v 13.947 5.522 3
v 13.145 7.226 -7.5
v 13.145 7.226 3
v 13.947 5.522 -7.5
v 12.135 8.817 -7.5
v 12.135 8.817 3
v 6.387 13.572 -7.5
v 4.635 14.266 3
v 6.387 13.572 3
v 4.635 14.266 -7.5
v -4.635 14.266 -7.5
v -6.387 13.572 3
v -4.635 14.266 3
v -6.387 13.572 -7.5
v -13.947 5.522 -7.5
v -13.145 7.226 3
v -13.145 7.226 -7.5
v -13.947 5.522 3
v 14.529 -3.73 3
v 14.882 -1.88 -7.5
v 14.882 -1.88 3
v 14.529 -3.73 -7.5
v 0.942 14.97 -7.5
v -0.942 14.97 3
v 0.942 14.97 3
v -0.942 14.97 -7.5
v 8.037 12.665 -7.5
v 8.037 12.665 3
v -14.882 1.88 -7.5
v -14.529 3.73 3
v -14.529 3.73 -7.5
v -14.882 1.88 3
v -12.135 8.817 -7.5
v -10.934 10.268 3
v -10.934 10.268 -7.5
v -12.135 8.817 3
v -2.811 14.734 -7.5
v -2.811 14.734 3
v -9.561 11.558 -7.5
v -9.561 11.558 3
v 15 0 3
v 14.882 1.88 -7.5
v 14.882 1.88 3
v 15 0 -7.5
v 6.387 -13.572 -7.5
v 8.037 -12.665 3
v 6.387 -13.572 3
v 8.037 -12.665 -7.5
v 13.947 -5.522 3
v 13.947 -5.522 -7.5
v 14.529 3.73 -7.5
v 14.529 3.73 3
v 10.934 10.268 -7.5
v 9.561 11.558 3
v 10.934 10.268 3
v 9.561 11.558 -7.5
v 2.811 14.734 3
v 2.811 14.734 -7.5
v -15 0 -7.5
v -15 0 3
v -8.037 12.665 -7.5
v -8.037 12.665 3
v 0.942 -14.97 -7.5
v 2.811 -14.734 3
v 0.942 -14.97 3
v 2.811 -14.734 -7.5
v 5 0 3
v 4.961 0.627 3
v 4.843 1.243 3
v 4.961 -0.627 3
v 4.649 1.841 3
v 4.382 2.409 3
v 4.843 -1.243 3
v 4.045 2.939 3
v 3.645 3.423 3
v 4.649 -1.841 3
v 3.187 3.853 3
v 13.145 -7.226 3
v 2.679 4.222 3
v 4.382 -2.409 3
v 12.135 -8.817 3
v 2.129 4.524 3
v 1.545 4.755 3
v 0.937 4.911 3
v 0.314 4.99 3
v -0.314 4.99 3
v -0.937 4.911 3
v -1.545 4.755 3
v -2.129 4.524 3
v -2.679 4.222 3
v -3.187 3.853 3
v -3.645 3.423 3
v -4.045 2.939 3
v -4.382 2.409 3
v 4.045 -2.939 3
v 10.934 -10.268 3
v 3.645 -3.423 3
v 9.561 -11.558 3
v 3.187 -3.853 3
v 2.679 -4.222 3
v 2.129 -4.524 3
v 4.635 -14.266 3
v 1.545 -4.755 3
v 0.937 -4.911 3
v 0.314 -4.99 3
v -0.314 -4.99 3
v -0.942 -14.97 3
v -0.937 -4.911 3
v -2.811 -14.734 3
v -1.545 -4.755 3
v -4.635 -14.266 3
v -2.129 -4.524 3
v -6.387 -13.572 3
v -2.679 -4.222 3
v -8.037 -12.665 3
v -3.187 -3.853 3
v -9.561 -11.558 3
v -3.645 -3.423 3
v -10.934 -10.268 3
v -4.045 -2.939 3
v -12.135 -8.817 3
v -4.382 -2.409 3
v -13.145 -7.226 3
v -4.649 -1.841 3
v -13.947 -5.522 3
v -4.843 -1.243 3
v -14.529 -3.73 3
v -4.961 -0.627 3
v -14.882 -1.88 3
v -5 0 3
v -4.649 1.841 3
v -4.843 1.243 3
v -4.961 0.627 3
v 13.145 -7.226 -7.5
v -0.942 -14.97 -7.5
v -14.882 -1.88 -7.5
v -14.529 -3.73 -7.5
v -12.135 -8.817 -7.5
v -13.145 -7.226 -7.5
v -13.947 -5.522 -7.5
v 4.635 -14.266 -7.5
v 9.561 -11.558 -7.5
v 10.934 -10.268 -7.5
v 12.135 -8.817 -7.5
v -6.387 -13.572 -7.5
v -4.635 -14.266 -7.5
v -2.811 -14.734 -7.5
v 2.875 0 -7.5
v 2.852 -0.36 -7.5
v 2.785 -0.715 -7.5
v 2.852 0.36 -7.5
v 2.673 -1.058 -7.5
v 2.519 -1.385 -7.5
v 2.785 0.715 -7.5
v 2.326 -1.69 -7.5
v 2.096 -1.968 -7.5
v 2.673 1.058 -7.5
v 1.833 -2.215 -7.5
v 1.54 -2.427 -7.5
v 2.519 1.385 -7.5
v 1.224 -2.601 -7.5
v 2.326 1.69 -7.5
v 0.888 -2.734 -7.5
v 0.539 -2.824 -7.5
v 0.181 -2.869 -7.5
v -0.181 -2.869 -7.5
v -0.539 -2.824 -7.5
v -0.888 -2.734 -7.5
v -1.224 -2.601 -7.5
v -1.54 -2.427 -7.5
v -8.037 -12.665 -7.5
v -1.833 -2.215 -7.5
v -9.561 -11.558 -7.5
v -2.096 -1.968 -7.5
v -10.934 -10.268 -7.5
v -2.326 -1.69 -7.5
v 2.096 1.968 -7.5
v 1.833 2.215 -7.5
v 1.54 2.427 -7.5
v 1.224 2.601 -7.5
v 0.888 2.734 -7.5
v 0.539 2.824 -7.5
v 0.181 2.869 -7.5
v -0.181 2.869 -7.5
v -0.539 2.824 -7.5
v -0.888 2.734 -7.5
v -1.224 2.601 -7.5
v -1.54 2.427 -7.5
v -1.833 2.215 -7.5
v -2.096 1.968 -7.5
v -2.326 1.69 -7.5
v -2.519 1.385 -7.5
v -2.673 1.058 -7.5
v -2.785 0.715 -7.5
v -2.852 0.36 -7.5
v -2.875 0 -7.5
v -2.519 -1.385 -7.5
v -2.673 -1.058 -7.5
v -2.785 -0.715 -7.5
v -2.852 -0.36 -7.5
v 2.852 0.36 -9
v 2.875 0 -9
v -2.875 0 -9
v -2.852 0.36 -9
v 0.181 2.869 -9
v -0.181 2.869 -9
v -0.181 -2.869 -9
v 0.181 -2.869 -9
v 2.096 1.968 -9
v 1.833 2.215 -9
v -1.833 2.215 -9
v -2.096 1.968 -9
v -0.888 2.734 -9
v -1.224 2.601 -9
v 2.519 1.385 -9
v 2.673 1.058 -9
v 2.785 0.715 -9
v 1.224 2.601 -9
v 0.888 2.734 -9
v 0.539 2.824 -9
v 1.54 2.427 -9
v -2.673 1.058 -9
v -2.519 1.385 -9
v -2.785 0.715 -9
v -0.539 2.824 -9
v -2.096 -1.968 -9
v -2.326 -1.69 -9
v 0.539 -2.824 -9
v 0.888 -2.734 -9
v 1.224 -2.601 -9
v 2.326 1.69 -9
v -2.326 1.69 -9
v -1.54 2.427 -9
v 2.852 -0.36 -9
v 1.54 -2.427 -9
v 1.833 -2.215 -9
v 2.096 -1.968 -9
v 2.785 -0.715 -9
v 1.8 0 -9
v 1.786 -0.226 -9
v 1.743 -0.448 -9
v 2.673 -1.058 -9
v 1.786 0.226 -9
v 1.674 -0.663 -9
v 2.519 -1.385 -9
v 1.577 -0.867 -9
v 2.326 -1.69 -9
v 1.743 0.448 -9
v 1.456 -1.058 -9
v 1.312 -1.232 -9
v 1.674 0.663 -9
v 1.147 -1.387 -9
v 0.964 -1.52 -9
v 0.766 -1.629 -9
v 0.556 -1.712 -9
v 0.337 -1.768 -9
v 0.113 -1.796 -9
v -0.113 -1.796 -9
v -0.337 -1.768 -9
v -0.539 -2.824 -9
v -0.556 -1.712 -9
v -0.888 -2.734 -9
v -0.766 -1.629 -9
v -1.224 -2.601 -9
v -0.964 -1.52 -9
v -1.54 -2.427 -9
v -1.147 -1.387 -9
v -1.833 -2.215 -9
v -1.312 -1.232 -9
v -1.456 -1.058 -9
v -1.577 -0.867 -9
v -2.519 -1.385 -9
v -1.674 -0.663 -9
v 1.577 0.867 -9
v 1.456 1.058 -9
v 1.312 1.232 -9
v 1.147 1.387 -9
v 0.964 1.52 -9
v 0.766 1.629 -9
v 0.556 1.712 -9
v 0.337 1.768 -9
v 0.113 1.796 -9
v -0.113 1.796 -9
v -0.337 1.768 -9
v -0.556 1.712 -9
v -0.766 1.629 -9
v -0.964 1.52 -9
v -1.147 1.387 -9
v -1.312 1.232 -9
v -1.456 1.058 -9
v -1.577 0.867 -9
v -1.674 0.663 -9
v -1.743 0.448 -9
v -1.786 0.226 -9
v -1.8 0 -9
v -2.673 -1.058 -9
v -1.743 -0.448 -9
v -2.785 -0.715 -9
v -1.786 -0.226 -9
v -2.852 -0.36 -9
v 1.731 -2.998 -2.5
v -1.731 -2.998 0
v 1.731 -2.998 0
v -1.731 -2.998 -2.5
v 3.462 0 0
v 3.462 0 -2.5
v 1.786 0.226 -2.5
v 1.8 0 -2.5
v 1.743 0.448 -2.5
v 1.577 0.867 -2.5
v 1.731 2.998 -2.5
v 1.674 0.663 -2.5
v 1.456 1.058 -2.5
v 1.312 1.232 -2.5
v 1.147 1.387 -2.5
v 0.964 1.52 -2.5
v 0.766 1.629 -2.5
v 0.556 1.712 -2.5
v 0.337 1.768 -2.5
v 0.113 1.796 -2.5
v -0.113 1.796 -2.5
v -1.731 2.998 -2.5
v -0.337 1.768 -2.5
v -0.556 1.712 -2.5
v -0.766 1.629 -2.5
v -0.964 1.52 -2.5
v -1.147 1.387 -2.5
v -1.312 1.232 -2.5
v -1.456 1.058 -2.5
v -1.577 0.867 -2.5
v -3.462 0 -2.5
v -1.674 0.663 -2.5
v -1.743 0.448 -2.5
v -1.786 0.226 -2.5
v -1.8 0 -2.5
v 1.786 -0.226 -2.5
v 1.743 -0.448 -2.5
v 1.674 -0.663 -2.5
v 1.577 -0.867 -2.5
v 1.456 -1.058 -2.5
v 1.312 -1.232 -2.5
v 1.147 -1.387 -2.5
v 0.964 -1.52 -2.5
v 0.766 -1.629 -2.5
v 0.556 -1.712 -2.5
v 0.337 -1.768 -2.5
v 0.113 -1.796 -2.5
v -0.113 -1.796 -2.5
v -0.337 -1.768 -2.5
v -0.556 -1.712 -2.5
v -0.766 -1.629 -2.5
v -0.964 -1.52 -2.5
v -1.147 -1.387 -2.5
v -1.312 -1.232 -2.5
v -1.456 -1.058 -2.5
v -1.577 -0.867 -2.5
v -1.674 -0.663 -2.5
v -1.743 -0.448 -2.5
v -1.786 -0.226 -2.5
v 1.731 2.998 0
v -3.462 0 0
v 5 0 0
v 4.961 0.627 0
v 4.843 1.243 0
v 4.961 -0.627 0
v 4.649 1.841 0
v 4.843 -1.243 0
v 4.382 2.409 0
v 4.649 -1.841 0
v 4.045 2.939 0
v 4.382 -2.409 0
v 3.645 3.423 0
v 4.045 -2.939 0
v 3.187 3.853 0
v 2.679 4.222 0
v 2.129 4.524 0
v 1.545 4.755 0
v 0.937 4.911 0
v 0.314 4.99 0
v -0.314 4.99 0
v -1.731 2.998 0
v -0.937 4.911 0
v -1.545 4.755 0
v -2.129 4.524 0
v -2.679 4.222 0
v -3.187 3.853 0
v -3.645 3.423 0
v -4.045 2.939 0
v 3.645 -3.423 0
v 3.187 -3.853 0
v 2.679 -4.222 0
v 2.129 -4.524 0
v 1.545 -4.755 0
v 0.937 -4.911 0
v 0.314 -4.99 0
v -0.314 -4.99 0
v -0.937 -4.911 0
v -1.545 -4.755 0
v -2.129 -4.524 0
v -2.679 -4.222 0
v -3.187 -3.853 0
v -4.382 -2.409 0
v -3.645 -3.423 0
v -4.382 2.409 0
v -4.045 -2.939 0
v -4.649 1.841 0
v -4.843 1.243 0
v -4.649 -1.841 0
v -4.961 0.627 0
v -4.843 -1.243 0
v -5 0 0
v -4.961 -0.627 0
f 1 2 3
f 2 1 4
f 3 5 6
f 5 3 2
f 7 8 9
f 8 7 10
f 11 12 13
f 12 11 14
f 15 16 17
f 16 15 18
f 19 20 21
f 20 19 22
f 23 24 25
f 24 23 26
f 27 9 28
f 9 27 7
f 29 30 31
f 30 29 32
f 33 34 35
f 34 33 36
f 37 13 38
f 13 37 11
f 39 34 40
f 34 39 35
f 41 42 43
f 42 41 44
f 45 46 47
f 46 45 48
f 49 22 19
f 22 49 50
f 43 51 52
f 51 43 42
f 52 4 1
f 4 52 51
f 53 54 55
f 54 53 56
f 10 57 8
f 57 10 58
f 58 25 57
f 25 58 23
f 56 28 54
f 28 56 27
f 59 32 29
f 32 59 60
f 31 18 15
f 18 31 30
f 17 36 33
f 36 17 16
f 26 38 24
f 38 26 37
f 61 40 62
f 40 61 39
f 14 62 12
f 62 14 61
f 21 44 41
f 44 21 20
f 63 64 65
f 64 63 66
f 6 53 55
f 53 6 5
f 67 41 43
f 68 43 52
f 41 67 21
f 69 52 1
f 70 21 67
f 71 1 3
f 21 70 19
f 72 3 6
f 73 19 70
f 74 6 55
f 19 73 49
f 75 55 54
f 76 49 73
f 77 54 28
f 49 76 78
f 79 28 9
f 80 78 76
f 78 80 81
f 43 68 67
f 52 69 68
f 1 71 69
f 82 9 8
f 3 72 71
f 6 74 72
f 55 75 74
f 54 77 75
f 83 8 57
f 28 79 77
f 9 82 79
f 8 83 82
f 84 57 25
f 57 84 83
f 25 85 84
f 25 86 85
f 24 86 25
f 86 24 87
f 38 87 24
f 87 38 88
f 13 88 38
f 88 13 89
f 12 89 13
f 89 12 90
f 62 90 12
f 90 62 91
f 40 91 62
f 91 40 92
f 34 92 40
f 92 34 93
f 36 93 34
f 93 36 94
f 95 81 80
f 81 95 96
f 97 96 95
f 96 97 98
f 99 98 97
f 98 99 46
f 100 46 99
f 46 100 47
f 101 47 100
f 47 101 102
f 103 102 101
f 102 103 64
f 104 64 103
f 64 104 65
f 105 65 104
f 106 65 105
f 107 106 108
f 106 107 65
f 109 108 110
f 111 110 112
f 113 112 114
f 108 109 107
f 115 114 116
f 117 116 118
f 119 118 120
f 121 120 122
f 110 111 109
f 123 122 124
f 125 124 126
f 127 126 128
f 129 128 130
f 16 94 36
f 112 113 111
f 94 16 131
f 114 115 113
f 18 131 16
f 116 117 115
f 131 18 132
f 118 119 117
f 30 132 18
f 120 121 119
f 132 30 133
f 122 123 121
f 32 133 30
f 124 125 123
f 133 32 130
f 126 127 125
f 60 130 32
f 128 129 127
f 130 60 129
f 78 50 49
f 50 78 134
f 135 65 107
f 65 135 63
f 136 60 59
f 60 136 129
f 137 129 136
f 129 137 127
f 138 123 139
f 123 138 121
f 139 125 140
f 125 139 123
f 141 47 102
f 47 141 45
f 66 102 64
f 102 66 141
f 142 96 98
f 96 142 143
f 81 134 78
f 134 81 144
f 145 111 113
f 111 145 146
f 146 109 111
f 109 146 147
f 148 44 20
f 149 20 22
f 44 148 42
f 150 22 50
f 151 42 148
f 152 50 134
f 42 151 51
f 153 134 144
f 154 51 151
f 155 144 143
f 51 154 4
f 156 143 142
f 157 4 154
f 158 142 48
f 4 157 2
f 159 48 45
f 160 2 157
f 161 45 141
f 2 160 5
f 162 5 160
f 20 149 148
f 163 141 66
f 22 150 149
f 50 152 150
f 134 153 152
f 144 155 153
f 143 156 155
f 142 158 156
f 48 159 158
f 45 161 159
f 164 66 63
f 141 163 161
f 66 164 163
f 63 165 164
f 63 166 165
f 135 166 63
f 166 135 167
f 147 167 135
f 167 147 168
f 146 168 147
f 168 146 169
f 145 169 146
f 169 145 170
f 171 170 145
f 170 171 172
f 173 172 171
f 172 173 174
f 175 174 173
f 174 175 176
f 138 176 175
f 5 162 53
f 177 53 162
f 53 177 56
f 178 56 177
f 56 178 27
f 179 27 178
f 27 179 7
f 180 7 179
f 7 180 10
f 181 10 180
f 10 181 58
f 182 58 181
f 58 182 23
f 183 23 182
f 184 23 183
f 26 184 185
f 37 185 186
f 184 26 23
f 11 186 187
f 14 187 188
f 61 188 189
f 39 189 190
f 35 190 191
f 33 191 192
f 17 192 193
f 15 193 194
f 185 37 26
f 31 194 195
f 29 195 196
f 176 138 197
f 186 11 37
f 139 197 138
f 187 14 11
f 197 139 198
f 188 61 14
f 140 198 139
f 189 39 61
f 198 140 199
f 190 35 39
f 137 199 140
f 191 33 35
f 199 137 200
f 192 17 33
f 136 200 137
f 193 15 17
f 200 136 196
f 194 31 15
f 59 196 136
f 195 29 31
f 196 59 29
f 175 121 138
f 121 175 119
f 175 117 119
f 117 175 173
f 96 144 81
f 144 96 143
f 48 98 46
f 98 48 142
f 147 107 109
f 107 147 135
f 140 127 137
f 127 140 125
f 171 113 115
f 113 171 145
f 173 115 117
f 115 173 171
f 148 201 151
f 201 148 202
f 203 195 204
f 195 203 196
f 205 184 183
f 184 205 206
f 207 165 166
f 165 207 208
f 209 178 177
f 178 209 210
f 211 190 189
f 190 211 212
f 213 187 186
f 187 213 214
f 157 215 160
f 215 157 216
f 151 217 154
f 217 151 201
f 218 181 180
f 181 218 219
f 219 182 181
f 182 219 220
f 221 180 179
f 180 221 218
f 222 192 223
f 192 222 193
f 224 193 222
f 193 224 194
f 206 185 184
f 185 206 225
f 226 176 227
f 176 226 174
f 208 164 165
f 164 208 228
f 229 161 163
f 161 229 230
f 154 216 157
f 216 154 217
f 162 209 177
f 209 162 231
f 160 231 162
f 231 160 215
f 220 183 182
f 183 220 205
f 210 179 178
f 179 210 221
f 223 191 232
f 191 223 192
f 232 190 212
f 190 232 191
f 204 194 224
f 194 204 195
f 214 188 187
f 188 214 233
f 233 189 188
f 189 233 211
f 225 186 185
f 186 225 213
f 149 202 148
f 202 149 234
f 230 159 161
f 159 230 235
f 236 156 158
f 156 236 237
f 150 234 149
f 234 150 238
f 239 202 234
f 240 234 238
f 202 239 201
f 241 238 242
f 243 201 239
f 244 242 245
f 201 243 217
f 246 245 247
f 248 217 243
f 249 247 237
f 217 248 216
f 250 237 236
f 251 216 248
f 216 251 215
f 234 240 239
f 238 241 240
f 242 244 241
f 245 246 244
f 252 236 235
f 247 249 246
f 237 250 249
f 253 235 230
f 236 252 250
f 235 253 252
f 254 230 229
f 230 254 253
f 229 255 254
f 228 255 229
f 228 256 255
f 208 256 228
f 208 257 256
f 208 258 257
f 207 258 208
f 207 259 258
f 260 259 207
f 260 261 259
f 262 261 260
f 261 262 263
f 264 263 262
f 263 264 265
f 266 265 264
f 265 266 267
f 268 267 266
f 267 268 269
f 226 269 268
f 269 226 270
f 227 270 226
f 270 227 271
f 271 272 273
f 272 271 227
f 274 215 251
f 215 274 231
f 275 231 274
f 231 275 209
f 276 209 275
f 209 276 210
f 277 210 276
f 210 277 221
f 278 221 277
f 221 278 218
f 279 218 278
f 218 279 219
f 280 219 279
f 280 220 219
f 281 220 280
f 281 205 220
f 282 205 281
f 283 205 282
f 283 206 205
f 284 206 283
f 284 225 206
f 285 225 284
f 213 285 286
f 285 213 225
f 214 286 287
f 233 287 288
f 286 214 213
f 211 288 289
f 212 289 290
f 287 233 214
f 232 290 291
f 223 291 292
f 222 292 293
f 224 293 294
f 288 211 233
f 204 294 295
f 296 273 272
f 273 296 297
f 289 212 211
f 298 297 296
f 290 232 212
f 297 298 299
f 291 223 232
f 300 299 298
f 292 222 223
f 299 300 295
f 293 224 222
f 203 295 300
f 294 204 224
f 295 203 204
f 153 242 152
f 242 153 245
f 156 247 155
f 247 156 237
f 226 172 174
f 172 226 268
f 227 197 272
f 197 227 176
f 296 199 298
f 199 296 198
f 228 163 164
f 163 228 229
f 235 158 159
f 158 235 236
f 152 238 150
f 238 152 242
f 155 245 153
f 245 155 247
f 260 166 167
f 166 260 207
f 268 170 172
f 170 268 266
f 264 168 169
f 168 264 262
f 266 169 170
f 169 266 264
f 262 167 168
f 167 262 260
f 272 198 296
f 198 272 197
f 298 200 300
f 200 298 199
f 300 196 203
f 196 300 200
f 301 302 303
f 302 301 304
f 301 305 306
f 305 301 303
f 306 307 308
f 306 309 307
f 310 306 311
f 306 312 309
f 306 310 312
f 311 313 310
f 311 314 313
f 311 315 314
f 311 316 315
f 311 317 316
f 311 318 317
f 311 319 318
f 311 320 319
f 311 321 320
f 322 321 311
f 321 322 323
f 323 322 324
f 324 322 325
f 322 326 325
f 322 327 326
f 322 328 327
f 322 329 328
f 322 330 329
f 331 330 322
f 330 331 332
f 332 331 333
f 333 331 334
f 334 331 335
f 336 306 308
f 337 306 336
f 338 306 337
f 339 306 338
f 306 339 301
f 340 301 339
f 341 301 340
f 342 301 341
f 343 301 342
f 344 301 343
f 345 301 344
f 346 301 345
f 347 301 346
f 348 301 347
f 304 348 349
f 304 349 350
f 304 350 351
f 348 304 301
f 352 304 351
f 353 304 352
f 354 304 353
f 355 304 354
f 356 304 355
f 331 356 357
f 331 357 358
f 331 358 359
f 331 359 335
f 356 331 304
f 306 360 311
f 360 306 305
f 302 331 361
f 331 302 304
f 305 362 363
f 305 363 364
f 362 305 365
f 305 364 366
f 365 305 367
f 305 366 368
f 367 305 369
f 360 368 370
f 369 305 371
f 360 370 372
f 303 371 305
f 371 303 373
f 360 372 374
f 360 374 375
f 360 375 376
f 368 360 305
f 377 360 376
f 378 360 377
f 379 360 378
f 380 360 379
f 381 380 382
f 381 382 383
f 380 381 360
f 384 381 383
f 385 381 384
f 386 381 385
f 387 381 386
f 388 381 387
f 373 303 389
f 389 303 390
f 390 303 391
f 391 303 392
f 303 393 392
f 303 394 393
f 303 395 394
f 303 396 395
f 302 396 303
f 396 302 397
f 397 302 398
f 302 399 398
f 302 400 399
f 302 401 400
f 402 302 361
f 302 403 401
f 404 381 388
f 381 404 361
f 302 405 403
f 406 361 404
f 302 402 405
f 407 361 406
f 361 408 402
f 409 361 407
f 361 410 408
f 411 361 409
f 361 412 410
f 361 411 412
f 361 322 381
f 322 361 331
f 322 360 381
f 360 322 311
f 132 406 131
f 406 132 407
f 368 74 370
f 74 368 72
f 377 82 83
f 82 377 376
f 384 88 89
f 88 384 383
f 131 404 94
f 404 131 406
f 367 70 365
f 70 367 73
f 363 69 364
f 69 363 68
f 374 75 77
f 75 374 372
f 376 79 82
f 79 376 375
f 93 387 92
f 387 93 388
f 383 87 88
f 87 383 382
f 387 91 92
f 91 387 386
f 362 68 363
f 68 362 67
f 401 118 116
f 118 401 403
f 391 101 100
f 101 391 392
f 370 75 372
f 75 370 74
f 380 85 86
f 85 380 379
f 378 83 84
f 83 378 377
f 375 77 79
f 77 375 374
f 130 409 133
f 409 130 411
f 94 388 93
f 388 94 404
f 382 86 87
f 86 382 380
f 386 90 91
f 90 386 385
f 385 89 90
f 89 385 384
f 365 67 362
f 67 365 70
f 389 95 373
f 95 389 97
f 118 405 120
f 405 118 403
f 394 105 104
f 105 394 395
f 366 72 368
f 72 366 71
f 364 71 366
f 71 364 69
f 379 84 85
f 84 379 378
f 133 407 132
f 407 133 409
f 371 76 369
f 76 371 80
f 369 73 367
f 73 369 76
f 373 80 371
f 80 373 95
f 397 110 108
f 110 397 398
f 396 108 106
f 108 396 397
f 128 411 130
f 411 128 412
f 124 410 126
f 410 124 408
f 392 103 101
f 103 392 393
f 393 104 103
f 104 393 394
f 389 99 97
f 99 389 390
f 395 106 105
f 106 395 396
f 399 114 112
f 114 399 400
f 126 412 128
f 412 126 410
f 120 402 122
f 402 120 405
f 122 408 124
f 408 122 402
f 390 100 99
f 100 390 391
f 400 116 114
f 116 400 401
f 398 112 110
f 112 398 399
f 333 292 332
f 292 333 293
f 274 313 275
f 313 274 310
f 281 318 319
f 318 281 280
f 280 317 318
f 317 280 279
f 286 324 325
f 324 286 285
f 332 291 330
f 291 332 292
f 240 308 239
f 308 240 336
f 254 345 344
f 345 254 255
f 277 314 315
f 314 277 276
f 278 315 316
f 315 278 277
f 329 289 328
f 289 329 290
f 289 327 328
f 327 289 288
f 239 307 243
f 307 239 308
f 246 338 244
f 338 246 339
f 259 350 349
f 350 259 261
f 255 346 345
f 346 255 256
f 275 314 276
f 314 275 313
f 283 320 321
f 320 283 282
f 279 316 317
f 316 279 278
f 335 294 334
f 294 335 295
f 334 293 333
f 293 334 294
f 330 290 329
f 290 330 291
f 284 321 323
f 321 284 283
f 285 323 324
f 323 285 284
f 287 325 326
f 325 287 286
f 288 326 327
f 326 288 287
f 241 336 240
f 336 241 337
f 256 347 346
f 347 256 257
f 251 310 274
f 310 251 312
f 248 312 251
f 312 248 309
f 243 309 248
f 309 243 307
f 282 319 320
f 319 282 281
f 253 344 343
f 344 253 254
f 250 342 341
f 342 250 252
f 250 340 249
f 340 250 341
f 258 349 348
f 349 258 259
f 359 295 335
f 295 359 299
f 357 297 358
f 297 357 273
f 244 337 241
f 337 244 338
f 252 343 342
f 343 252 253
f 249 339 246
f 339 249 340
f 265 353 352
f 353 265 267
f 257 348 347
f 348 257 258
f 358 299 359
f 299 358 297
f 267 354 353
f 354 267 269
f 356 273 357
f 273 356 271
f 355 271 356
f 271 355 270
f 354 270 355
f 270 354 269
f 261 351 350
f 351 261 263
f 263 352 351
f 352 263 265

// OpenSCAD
$fn = 50;


difference() {
	union() {
		translate(v = [0, 0, -7.5000000000]) {
			cylinder(h = 10.5000000000, r = 15.0000000000);
		}
		#translate(v = [0, 0, -9.0000000000]) {
			cylinder(h = 9, r = 2.8750000000);
		}
	}
	union() {
		translate(v = [0, 0, 0]) {
			rotate(a = [0, 0, 0]) {
				difference() {
					union() {
						translate(v = [0, 0, -2.5000000000]) {
							linear_extrude(height = 2.5000000000) {
								polygon(points = [[3.4620000000, 0.0000000000], [1.7310000000, 2.9981799479], [-1.7310000000, 2.9981799479], [-3.4620000000, 0.0000000000], [-1.7310000000, -2.9981799479], [1.7310000000, -2.9981799479]]);
							}
						}
					}
					union();
				}
			}
		}
		#cylinder(h = 3, r = 5.0000000000);
		#translate(v = [0, 0, -100.0000000000]) {
			cylinder(h = 200, r = 1.8000000000);
		}
	}
}
